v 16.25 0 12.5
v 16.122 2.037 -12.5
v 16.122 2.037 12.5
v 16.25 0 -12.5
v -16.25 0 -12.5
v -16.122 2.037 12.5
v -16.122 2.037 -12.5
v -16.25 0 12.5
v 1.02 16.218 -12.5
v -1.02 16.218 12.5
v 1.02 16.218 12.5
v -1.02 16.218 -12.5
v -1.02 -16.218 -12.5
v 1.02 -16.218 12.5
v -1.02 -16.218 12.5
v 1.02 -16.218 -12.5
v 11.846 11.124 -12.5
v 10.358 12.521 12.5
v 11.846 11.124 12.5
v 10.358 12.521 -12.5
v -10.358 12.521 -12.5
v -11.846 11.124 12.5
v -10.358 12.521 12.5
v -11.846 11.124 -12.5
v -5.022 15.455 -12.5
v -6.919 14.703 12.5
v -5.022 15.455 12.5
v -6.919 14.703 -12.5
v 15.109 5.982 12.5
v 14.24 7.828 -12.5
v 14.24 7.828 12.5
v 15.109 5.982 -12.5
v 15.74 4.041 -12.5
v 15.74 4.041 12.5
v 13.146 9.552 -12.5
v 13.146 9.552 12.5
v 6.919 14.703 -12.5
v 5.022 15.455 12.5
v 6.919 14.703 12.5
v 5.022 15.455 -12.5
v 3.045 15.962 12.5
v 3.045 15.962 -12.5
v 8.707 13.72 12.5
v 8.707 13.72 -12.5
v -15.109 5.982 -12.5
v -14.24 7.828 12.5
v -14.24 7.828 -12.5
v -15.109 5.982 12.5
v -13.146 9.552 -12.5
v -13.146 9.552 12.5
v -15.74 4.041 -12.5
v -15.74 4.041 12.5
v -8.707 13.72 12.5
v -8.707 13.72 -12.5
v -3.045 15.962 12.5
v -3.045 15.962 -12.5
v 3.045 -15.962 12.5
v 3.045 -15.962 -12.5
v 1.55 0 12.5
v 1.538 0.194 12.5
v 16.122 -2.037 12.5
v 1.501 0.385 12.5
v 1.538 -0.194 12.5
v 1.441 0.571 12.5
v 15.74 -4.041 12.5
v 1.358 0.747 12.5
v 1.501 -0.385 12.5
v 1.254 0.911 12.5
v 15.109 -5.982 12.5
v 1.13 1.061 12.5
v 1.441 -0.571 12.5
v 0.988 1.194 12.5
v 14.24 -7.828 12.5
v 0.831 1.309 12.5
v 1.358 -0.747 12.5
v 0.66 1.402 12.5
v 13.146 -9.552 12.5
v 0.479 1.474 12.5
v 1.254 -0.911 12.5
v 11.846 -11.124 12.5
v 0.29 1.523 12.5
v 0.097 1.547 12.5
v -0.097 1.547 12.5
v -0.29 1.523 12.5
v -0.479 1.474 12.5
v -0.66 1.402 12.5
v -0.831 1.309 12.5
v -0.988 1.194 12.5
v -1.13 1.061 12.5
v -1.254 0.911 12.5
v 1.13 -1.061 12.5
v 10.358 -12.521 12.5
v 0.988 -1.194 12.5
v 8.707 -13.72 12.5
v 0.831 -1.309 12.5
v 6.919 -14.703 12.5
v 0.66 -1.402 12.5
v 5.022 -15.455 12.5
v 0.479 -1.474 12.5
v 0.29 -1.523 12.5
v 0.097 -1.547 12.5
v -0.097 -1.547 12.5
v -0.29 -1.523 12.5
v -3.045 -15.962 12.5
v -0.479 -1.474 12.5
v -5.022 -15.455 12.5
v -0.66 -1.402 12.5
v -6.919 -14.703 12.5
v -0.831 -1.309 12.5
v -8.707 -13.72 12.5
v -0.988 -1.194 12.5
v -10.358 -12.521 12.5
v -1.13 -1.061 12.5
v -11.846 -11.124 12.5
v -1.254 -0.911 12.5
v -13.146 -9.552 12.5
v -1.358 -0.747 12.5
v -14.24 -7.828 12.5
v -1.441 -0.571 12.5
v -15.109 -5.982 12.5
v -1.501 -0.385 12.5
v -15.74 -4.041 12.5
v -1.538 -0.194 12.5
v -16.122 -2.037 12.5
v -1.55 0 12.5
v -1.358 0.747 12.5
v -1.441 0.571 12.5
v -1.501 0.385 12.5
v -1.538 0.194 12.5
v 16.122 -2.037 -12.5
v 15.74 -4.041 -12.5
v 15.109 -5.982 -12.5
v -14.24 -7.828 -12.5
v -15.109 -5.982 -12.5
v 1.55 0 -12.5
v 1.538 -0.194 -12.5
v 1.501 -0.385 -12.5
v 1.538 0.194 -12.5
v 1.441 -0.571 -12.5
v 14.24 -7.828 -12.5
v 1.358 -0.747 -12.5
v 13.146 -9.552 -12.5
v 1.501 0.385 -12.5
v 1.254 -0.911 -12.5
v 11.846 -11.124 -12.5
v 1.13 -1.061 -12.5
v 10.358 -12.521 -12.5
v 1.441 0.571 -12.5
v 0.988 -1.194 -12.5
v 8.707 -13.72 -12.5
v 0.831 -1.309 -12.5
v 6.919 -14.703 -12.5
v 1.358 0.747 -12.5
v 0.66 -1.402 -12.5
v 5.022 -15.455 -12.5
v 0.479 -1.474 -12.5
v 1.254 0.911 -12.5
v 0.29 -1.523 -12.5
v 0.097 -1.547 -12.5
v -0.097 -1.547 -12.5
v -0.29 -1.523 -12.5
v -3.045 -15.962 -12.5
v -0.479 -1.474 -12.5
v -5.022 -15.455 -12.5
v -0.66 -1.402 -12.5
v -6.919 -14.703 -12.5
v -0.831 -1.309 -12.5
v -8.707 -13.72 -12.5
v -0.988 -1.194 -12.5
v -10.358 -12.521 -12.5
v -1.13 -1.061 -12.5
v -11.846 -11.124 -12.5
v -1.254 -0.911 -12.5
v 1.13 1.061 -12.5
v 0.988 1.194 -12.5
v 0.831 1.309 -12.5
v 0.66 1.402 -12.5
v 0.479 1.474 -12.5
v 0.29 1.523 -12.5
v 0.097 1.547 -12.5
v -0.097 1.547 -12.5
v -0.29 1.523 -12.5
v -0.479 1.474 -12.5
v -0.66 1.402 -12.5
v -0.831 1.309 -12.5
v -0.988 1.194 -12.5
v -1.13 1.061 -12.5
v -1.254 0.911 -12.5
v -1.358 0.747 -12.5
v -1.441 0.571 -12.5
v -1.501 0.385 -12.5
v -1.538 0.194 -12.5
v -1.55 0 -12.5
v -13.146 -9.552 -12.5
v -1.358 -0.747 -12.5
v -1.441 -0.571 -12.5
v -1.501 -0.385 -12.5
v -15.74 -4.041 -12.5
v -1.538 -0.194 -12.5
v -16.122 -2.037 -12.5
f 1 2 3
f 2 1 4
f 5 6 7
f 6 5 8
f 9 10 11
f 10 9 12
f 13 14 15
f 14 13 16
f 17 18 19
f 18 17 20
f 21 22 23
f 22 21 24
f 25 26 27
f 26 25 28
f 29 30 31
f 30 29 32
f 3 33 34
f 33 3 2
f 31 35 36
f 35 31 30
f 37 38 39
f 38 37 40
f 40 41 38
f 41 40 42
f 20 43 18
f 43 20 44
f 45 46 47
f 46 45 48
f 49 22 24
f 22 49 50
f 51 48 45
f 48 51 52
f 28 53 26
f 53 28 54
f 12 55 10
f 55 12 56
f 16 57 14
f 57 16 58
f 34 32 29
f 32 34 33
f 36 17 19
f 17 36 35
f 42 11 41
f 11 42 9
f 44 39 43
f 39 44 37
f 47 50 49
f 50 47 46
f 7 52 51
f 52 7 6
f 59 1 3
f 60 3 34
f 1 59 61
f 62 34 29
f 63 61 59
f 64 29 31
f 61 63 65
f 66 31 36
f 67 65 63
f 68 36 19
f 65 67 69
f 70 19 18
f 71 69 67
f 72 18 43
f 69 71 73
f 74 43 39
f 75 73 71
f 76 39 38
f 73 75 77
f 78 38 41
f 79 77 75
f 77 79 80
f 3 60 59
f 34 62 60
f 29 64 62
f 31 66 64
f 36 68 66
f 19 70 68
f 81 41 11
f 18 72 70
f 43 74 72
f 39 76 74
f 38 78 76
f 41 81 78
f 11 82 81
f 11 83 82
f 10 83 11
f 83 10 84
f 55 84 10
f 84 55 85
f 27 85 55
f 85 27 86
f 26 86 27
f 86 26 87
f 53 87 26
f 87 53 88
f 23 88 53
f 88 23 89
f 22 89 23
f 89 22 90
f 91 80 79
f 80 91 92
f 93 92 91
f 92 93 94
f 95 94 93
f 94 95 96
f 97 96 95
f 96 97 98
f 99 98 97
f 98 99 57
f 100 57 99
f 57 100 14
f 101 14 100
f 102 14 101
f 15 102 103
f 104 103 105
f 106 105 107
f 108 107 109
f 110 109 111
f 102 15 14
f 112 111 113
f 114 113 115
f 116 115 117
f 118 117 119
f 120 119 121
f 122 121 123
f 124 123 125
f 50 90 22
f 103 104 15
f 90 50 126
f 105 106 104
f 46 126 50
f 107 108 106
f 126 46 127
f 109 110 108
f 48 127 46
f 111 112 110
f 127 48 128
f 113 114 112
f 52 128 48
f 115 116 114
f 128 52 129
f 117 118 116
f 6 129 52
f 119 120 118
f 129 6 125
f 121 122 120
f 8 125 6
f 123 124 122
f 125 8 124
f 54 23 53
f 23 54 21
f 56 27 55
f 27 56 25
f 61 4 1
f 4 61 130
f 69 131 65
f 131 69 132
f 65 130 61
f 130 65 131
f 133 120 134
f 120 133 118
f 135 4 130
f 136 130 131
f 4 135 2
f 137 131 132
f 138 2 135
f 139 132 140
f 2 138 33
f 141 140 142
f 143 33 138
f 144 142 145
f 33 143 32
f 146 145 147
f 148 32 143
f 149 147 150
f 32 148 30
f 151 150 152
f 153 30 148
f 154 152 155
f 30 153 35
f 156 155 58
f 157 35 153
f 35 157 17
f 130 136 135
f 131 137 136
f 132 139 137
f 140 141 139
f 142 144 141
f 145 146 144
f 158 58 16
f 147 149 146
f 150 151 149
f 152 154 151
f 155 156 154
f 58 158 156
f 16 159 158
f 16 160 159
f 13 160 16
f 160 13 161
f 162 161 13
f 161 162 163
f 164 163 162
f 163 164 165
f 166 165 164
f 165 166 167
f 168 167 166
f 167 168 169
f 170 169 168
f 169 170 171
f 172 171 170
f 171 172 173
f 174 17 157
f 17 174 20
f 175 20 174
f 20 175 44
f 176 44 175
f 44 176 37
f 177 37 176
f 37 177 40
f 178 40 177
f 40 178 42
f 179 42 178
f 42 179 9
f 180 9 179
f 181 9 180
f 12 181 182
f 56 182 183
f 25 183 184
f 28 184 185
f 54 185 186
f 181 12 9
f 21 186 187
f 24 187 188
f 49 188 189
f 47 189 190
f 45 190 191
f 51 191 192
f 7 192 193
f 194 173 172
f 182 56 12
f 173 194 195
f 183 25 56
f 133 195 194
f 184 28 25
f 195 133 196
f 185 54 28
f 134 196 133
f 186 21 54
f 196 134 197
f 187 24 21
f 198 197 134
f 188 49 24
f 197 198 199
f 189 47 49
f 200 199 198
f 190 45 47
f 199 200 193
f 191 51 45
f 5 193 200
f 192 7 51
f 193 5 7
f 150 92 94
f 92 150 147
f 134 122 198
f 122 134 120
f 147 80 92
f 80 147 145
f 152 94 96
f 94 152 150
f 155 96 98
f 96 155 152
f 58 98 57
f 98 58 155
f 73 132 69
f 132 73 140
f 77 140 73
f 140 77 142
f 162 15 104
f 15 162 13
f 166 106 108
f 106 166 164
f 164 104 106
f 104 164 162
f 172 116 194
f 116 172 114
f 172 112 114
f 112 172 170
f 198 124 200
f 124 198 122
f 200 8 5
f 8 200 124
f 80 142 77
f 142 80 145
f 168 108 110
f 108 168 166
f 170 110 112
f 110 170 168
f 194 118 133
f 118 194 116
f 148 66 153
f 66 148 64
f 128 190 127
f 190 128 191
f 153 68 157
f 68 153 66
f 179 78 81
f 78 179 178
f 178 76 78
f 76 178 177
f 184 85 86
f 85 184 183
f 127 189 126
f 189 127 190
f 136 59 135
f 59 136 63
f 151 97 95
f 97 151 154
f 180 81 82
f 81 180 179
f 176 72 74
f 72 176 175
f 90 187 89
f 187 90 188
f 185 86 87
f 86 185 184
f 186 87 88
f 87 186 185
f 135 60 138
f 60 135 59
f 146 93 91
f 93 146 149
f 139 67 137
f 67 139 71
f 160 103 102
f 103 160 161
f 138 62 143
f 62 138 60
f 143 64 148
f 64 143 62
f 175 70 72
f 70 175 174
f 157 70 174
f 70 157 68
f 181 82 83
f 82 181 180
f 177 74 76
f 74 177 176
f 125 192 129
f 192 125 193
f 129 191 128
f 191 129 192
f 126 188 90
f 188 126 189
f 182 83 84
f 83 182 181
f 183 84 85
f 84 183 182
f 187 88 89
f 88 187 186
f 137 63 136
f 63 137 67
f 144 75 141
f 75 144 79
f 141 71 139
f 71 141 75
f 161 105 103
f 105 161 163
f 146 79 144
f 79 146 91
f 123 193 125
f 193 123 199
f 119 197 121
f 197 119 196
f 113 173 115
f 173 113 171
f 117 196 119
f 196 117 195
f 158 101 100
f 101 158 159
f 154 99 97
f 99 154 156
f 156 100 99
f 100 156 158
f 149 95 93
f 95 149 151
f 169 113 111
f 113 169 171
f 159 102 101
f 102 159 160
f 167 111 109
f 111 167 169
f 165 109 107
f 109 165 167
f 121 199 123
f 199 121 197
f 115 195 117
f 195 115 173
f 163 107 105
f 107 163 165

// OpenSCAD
$fn = 50;


difference() {
	union() {
		translate(v = [0, 0, -12.5000000000]) {
			cylinder(h = 25, r = 16.2500000000);
		}
	}
	union() {
		translate(v = [0, 0, -100.0000000000]) {
			cylinder(h = 200, r = 1.5500000000);
		}
	}
}
